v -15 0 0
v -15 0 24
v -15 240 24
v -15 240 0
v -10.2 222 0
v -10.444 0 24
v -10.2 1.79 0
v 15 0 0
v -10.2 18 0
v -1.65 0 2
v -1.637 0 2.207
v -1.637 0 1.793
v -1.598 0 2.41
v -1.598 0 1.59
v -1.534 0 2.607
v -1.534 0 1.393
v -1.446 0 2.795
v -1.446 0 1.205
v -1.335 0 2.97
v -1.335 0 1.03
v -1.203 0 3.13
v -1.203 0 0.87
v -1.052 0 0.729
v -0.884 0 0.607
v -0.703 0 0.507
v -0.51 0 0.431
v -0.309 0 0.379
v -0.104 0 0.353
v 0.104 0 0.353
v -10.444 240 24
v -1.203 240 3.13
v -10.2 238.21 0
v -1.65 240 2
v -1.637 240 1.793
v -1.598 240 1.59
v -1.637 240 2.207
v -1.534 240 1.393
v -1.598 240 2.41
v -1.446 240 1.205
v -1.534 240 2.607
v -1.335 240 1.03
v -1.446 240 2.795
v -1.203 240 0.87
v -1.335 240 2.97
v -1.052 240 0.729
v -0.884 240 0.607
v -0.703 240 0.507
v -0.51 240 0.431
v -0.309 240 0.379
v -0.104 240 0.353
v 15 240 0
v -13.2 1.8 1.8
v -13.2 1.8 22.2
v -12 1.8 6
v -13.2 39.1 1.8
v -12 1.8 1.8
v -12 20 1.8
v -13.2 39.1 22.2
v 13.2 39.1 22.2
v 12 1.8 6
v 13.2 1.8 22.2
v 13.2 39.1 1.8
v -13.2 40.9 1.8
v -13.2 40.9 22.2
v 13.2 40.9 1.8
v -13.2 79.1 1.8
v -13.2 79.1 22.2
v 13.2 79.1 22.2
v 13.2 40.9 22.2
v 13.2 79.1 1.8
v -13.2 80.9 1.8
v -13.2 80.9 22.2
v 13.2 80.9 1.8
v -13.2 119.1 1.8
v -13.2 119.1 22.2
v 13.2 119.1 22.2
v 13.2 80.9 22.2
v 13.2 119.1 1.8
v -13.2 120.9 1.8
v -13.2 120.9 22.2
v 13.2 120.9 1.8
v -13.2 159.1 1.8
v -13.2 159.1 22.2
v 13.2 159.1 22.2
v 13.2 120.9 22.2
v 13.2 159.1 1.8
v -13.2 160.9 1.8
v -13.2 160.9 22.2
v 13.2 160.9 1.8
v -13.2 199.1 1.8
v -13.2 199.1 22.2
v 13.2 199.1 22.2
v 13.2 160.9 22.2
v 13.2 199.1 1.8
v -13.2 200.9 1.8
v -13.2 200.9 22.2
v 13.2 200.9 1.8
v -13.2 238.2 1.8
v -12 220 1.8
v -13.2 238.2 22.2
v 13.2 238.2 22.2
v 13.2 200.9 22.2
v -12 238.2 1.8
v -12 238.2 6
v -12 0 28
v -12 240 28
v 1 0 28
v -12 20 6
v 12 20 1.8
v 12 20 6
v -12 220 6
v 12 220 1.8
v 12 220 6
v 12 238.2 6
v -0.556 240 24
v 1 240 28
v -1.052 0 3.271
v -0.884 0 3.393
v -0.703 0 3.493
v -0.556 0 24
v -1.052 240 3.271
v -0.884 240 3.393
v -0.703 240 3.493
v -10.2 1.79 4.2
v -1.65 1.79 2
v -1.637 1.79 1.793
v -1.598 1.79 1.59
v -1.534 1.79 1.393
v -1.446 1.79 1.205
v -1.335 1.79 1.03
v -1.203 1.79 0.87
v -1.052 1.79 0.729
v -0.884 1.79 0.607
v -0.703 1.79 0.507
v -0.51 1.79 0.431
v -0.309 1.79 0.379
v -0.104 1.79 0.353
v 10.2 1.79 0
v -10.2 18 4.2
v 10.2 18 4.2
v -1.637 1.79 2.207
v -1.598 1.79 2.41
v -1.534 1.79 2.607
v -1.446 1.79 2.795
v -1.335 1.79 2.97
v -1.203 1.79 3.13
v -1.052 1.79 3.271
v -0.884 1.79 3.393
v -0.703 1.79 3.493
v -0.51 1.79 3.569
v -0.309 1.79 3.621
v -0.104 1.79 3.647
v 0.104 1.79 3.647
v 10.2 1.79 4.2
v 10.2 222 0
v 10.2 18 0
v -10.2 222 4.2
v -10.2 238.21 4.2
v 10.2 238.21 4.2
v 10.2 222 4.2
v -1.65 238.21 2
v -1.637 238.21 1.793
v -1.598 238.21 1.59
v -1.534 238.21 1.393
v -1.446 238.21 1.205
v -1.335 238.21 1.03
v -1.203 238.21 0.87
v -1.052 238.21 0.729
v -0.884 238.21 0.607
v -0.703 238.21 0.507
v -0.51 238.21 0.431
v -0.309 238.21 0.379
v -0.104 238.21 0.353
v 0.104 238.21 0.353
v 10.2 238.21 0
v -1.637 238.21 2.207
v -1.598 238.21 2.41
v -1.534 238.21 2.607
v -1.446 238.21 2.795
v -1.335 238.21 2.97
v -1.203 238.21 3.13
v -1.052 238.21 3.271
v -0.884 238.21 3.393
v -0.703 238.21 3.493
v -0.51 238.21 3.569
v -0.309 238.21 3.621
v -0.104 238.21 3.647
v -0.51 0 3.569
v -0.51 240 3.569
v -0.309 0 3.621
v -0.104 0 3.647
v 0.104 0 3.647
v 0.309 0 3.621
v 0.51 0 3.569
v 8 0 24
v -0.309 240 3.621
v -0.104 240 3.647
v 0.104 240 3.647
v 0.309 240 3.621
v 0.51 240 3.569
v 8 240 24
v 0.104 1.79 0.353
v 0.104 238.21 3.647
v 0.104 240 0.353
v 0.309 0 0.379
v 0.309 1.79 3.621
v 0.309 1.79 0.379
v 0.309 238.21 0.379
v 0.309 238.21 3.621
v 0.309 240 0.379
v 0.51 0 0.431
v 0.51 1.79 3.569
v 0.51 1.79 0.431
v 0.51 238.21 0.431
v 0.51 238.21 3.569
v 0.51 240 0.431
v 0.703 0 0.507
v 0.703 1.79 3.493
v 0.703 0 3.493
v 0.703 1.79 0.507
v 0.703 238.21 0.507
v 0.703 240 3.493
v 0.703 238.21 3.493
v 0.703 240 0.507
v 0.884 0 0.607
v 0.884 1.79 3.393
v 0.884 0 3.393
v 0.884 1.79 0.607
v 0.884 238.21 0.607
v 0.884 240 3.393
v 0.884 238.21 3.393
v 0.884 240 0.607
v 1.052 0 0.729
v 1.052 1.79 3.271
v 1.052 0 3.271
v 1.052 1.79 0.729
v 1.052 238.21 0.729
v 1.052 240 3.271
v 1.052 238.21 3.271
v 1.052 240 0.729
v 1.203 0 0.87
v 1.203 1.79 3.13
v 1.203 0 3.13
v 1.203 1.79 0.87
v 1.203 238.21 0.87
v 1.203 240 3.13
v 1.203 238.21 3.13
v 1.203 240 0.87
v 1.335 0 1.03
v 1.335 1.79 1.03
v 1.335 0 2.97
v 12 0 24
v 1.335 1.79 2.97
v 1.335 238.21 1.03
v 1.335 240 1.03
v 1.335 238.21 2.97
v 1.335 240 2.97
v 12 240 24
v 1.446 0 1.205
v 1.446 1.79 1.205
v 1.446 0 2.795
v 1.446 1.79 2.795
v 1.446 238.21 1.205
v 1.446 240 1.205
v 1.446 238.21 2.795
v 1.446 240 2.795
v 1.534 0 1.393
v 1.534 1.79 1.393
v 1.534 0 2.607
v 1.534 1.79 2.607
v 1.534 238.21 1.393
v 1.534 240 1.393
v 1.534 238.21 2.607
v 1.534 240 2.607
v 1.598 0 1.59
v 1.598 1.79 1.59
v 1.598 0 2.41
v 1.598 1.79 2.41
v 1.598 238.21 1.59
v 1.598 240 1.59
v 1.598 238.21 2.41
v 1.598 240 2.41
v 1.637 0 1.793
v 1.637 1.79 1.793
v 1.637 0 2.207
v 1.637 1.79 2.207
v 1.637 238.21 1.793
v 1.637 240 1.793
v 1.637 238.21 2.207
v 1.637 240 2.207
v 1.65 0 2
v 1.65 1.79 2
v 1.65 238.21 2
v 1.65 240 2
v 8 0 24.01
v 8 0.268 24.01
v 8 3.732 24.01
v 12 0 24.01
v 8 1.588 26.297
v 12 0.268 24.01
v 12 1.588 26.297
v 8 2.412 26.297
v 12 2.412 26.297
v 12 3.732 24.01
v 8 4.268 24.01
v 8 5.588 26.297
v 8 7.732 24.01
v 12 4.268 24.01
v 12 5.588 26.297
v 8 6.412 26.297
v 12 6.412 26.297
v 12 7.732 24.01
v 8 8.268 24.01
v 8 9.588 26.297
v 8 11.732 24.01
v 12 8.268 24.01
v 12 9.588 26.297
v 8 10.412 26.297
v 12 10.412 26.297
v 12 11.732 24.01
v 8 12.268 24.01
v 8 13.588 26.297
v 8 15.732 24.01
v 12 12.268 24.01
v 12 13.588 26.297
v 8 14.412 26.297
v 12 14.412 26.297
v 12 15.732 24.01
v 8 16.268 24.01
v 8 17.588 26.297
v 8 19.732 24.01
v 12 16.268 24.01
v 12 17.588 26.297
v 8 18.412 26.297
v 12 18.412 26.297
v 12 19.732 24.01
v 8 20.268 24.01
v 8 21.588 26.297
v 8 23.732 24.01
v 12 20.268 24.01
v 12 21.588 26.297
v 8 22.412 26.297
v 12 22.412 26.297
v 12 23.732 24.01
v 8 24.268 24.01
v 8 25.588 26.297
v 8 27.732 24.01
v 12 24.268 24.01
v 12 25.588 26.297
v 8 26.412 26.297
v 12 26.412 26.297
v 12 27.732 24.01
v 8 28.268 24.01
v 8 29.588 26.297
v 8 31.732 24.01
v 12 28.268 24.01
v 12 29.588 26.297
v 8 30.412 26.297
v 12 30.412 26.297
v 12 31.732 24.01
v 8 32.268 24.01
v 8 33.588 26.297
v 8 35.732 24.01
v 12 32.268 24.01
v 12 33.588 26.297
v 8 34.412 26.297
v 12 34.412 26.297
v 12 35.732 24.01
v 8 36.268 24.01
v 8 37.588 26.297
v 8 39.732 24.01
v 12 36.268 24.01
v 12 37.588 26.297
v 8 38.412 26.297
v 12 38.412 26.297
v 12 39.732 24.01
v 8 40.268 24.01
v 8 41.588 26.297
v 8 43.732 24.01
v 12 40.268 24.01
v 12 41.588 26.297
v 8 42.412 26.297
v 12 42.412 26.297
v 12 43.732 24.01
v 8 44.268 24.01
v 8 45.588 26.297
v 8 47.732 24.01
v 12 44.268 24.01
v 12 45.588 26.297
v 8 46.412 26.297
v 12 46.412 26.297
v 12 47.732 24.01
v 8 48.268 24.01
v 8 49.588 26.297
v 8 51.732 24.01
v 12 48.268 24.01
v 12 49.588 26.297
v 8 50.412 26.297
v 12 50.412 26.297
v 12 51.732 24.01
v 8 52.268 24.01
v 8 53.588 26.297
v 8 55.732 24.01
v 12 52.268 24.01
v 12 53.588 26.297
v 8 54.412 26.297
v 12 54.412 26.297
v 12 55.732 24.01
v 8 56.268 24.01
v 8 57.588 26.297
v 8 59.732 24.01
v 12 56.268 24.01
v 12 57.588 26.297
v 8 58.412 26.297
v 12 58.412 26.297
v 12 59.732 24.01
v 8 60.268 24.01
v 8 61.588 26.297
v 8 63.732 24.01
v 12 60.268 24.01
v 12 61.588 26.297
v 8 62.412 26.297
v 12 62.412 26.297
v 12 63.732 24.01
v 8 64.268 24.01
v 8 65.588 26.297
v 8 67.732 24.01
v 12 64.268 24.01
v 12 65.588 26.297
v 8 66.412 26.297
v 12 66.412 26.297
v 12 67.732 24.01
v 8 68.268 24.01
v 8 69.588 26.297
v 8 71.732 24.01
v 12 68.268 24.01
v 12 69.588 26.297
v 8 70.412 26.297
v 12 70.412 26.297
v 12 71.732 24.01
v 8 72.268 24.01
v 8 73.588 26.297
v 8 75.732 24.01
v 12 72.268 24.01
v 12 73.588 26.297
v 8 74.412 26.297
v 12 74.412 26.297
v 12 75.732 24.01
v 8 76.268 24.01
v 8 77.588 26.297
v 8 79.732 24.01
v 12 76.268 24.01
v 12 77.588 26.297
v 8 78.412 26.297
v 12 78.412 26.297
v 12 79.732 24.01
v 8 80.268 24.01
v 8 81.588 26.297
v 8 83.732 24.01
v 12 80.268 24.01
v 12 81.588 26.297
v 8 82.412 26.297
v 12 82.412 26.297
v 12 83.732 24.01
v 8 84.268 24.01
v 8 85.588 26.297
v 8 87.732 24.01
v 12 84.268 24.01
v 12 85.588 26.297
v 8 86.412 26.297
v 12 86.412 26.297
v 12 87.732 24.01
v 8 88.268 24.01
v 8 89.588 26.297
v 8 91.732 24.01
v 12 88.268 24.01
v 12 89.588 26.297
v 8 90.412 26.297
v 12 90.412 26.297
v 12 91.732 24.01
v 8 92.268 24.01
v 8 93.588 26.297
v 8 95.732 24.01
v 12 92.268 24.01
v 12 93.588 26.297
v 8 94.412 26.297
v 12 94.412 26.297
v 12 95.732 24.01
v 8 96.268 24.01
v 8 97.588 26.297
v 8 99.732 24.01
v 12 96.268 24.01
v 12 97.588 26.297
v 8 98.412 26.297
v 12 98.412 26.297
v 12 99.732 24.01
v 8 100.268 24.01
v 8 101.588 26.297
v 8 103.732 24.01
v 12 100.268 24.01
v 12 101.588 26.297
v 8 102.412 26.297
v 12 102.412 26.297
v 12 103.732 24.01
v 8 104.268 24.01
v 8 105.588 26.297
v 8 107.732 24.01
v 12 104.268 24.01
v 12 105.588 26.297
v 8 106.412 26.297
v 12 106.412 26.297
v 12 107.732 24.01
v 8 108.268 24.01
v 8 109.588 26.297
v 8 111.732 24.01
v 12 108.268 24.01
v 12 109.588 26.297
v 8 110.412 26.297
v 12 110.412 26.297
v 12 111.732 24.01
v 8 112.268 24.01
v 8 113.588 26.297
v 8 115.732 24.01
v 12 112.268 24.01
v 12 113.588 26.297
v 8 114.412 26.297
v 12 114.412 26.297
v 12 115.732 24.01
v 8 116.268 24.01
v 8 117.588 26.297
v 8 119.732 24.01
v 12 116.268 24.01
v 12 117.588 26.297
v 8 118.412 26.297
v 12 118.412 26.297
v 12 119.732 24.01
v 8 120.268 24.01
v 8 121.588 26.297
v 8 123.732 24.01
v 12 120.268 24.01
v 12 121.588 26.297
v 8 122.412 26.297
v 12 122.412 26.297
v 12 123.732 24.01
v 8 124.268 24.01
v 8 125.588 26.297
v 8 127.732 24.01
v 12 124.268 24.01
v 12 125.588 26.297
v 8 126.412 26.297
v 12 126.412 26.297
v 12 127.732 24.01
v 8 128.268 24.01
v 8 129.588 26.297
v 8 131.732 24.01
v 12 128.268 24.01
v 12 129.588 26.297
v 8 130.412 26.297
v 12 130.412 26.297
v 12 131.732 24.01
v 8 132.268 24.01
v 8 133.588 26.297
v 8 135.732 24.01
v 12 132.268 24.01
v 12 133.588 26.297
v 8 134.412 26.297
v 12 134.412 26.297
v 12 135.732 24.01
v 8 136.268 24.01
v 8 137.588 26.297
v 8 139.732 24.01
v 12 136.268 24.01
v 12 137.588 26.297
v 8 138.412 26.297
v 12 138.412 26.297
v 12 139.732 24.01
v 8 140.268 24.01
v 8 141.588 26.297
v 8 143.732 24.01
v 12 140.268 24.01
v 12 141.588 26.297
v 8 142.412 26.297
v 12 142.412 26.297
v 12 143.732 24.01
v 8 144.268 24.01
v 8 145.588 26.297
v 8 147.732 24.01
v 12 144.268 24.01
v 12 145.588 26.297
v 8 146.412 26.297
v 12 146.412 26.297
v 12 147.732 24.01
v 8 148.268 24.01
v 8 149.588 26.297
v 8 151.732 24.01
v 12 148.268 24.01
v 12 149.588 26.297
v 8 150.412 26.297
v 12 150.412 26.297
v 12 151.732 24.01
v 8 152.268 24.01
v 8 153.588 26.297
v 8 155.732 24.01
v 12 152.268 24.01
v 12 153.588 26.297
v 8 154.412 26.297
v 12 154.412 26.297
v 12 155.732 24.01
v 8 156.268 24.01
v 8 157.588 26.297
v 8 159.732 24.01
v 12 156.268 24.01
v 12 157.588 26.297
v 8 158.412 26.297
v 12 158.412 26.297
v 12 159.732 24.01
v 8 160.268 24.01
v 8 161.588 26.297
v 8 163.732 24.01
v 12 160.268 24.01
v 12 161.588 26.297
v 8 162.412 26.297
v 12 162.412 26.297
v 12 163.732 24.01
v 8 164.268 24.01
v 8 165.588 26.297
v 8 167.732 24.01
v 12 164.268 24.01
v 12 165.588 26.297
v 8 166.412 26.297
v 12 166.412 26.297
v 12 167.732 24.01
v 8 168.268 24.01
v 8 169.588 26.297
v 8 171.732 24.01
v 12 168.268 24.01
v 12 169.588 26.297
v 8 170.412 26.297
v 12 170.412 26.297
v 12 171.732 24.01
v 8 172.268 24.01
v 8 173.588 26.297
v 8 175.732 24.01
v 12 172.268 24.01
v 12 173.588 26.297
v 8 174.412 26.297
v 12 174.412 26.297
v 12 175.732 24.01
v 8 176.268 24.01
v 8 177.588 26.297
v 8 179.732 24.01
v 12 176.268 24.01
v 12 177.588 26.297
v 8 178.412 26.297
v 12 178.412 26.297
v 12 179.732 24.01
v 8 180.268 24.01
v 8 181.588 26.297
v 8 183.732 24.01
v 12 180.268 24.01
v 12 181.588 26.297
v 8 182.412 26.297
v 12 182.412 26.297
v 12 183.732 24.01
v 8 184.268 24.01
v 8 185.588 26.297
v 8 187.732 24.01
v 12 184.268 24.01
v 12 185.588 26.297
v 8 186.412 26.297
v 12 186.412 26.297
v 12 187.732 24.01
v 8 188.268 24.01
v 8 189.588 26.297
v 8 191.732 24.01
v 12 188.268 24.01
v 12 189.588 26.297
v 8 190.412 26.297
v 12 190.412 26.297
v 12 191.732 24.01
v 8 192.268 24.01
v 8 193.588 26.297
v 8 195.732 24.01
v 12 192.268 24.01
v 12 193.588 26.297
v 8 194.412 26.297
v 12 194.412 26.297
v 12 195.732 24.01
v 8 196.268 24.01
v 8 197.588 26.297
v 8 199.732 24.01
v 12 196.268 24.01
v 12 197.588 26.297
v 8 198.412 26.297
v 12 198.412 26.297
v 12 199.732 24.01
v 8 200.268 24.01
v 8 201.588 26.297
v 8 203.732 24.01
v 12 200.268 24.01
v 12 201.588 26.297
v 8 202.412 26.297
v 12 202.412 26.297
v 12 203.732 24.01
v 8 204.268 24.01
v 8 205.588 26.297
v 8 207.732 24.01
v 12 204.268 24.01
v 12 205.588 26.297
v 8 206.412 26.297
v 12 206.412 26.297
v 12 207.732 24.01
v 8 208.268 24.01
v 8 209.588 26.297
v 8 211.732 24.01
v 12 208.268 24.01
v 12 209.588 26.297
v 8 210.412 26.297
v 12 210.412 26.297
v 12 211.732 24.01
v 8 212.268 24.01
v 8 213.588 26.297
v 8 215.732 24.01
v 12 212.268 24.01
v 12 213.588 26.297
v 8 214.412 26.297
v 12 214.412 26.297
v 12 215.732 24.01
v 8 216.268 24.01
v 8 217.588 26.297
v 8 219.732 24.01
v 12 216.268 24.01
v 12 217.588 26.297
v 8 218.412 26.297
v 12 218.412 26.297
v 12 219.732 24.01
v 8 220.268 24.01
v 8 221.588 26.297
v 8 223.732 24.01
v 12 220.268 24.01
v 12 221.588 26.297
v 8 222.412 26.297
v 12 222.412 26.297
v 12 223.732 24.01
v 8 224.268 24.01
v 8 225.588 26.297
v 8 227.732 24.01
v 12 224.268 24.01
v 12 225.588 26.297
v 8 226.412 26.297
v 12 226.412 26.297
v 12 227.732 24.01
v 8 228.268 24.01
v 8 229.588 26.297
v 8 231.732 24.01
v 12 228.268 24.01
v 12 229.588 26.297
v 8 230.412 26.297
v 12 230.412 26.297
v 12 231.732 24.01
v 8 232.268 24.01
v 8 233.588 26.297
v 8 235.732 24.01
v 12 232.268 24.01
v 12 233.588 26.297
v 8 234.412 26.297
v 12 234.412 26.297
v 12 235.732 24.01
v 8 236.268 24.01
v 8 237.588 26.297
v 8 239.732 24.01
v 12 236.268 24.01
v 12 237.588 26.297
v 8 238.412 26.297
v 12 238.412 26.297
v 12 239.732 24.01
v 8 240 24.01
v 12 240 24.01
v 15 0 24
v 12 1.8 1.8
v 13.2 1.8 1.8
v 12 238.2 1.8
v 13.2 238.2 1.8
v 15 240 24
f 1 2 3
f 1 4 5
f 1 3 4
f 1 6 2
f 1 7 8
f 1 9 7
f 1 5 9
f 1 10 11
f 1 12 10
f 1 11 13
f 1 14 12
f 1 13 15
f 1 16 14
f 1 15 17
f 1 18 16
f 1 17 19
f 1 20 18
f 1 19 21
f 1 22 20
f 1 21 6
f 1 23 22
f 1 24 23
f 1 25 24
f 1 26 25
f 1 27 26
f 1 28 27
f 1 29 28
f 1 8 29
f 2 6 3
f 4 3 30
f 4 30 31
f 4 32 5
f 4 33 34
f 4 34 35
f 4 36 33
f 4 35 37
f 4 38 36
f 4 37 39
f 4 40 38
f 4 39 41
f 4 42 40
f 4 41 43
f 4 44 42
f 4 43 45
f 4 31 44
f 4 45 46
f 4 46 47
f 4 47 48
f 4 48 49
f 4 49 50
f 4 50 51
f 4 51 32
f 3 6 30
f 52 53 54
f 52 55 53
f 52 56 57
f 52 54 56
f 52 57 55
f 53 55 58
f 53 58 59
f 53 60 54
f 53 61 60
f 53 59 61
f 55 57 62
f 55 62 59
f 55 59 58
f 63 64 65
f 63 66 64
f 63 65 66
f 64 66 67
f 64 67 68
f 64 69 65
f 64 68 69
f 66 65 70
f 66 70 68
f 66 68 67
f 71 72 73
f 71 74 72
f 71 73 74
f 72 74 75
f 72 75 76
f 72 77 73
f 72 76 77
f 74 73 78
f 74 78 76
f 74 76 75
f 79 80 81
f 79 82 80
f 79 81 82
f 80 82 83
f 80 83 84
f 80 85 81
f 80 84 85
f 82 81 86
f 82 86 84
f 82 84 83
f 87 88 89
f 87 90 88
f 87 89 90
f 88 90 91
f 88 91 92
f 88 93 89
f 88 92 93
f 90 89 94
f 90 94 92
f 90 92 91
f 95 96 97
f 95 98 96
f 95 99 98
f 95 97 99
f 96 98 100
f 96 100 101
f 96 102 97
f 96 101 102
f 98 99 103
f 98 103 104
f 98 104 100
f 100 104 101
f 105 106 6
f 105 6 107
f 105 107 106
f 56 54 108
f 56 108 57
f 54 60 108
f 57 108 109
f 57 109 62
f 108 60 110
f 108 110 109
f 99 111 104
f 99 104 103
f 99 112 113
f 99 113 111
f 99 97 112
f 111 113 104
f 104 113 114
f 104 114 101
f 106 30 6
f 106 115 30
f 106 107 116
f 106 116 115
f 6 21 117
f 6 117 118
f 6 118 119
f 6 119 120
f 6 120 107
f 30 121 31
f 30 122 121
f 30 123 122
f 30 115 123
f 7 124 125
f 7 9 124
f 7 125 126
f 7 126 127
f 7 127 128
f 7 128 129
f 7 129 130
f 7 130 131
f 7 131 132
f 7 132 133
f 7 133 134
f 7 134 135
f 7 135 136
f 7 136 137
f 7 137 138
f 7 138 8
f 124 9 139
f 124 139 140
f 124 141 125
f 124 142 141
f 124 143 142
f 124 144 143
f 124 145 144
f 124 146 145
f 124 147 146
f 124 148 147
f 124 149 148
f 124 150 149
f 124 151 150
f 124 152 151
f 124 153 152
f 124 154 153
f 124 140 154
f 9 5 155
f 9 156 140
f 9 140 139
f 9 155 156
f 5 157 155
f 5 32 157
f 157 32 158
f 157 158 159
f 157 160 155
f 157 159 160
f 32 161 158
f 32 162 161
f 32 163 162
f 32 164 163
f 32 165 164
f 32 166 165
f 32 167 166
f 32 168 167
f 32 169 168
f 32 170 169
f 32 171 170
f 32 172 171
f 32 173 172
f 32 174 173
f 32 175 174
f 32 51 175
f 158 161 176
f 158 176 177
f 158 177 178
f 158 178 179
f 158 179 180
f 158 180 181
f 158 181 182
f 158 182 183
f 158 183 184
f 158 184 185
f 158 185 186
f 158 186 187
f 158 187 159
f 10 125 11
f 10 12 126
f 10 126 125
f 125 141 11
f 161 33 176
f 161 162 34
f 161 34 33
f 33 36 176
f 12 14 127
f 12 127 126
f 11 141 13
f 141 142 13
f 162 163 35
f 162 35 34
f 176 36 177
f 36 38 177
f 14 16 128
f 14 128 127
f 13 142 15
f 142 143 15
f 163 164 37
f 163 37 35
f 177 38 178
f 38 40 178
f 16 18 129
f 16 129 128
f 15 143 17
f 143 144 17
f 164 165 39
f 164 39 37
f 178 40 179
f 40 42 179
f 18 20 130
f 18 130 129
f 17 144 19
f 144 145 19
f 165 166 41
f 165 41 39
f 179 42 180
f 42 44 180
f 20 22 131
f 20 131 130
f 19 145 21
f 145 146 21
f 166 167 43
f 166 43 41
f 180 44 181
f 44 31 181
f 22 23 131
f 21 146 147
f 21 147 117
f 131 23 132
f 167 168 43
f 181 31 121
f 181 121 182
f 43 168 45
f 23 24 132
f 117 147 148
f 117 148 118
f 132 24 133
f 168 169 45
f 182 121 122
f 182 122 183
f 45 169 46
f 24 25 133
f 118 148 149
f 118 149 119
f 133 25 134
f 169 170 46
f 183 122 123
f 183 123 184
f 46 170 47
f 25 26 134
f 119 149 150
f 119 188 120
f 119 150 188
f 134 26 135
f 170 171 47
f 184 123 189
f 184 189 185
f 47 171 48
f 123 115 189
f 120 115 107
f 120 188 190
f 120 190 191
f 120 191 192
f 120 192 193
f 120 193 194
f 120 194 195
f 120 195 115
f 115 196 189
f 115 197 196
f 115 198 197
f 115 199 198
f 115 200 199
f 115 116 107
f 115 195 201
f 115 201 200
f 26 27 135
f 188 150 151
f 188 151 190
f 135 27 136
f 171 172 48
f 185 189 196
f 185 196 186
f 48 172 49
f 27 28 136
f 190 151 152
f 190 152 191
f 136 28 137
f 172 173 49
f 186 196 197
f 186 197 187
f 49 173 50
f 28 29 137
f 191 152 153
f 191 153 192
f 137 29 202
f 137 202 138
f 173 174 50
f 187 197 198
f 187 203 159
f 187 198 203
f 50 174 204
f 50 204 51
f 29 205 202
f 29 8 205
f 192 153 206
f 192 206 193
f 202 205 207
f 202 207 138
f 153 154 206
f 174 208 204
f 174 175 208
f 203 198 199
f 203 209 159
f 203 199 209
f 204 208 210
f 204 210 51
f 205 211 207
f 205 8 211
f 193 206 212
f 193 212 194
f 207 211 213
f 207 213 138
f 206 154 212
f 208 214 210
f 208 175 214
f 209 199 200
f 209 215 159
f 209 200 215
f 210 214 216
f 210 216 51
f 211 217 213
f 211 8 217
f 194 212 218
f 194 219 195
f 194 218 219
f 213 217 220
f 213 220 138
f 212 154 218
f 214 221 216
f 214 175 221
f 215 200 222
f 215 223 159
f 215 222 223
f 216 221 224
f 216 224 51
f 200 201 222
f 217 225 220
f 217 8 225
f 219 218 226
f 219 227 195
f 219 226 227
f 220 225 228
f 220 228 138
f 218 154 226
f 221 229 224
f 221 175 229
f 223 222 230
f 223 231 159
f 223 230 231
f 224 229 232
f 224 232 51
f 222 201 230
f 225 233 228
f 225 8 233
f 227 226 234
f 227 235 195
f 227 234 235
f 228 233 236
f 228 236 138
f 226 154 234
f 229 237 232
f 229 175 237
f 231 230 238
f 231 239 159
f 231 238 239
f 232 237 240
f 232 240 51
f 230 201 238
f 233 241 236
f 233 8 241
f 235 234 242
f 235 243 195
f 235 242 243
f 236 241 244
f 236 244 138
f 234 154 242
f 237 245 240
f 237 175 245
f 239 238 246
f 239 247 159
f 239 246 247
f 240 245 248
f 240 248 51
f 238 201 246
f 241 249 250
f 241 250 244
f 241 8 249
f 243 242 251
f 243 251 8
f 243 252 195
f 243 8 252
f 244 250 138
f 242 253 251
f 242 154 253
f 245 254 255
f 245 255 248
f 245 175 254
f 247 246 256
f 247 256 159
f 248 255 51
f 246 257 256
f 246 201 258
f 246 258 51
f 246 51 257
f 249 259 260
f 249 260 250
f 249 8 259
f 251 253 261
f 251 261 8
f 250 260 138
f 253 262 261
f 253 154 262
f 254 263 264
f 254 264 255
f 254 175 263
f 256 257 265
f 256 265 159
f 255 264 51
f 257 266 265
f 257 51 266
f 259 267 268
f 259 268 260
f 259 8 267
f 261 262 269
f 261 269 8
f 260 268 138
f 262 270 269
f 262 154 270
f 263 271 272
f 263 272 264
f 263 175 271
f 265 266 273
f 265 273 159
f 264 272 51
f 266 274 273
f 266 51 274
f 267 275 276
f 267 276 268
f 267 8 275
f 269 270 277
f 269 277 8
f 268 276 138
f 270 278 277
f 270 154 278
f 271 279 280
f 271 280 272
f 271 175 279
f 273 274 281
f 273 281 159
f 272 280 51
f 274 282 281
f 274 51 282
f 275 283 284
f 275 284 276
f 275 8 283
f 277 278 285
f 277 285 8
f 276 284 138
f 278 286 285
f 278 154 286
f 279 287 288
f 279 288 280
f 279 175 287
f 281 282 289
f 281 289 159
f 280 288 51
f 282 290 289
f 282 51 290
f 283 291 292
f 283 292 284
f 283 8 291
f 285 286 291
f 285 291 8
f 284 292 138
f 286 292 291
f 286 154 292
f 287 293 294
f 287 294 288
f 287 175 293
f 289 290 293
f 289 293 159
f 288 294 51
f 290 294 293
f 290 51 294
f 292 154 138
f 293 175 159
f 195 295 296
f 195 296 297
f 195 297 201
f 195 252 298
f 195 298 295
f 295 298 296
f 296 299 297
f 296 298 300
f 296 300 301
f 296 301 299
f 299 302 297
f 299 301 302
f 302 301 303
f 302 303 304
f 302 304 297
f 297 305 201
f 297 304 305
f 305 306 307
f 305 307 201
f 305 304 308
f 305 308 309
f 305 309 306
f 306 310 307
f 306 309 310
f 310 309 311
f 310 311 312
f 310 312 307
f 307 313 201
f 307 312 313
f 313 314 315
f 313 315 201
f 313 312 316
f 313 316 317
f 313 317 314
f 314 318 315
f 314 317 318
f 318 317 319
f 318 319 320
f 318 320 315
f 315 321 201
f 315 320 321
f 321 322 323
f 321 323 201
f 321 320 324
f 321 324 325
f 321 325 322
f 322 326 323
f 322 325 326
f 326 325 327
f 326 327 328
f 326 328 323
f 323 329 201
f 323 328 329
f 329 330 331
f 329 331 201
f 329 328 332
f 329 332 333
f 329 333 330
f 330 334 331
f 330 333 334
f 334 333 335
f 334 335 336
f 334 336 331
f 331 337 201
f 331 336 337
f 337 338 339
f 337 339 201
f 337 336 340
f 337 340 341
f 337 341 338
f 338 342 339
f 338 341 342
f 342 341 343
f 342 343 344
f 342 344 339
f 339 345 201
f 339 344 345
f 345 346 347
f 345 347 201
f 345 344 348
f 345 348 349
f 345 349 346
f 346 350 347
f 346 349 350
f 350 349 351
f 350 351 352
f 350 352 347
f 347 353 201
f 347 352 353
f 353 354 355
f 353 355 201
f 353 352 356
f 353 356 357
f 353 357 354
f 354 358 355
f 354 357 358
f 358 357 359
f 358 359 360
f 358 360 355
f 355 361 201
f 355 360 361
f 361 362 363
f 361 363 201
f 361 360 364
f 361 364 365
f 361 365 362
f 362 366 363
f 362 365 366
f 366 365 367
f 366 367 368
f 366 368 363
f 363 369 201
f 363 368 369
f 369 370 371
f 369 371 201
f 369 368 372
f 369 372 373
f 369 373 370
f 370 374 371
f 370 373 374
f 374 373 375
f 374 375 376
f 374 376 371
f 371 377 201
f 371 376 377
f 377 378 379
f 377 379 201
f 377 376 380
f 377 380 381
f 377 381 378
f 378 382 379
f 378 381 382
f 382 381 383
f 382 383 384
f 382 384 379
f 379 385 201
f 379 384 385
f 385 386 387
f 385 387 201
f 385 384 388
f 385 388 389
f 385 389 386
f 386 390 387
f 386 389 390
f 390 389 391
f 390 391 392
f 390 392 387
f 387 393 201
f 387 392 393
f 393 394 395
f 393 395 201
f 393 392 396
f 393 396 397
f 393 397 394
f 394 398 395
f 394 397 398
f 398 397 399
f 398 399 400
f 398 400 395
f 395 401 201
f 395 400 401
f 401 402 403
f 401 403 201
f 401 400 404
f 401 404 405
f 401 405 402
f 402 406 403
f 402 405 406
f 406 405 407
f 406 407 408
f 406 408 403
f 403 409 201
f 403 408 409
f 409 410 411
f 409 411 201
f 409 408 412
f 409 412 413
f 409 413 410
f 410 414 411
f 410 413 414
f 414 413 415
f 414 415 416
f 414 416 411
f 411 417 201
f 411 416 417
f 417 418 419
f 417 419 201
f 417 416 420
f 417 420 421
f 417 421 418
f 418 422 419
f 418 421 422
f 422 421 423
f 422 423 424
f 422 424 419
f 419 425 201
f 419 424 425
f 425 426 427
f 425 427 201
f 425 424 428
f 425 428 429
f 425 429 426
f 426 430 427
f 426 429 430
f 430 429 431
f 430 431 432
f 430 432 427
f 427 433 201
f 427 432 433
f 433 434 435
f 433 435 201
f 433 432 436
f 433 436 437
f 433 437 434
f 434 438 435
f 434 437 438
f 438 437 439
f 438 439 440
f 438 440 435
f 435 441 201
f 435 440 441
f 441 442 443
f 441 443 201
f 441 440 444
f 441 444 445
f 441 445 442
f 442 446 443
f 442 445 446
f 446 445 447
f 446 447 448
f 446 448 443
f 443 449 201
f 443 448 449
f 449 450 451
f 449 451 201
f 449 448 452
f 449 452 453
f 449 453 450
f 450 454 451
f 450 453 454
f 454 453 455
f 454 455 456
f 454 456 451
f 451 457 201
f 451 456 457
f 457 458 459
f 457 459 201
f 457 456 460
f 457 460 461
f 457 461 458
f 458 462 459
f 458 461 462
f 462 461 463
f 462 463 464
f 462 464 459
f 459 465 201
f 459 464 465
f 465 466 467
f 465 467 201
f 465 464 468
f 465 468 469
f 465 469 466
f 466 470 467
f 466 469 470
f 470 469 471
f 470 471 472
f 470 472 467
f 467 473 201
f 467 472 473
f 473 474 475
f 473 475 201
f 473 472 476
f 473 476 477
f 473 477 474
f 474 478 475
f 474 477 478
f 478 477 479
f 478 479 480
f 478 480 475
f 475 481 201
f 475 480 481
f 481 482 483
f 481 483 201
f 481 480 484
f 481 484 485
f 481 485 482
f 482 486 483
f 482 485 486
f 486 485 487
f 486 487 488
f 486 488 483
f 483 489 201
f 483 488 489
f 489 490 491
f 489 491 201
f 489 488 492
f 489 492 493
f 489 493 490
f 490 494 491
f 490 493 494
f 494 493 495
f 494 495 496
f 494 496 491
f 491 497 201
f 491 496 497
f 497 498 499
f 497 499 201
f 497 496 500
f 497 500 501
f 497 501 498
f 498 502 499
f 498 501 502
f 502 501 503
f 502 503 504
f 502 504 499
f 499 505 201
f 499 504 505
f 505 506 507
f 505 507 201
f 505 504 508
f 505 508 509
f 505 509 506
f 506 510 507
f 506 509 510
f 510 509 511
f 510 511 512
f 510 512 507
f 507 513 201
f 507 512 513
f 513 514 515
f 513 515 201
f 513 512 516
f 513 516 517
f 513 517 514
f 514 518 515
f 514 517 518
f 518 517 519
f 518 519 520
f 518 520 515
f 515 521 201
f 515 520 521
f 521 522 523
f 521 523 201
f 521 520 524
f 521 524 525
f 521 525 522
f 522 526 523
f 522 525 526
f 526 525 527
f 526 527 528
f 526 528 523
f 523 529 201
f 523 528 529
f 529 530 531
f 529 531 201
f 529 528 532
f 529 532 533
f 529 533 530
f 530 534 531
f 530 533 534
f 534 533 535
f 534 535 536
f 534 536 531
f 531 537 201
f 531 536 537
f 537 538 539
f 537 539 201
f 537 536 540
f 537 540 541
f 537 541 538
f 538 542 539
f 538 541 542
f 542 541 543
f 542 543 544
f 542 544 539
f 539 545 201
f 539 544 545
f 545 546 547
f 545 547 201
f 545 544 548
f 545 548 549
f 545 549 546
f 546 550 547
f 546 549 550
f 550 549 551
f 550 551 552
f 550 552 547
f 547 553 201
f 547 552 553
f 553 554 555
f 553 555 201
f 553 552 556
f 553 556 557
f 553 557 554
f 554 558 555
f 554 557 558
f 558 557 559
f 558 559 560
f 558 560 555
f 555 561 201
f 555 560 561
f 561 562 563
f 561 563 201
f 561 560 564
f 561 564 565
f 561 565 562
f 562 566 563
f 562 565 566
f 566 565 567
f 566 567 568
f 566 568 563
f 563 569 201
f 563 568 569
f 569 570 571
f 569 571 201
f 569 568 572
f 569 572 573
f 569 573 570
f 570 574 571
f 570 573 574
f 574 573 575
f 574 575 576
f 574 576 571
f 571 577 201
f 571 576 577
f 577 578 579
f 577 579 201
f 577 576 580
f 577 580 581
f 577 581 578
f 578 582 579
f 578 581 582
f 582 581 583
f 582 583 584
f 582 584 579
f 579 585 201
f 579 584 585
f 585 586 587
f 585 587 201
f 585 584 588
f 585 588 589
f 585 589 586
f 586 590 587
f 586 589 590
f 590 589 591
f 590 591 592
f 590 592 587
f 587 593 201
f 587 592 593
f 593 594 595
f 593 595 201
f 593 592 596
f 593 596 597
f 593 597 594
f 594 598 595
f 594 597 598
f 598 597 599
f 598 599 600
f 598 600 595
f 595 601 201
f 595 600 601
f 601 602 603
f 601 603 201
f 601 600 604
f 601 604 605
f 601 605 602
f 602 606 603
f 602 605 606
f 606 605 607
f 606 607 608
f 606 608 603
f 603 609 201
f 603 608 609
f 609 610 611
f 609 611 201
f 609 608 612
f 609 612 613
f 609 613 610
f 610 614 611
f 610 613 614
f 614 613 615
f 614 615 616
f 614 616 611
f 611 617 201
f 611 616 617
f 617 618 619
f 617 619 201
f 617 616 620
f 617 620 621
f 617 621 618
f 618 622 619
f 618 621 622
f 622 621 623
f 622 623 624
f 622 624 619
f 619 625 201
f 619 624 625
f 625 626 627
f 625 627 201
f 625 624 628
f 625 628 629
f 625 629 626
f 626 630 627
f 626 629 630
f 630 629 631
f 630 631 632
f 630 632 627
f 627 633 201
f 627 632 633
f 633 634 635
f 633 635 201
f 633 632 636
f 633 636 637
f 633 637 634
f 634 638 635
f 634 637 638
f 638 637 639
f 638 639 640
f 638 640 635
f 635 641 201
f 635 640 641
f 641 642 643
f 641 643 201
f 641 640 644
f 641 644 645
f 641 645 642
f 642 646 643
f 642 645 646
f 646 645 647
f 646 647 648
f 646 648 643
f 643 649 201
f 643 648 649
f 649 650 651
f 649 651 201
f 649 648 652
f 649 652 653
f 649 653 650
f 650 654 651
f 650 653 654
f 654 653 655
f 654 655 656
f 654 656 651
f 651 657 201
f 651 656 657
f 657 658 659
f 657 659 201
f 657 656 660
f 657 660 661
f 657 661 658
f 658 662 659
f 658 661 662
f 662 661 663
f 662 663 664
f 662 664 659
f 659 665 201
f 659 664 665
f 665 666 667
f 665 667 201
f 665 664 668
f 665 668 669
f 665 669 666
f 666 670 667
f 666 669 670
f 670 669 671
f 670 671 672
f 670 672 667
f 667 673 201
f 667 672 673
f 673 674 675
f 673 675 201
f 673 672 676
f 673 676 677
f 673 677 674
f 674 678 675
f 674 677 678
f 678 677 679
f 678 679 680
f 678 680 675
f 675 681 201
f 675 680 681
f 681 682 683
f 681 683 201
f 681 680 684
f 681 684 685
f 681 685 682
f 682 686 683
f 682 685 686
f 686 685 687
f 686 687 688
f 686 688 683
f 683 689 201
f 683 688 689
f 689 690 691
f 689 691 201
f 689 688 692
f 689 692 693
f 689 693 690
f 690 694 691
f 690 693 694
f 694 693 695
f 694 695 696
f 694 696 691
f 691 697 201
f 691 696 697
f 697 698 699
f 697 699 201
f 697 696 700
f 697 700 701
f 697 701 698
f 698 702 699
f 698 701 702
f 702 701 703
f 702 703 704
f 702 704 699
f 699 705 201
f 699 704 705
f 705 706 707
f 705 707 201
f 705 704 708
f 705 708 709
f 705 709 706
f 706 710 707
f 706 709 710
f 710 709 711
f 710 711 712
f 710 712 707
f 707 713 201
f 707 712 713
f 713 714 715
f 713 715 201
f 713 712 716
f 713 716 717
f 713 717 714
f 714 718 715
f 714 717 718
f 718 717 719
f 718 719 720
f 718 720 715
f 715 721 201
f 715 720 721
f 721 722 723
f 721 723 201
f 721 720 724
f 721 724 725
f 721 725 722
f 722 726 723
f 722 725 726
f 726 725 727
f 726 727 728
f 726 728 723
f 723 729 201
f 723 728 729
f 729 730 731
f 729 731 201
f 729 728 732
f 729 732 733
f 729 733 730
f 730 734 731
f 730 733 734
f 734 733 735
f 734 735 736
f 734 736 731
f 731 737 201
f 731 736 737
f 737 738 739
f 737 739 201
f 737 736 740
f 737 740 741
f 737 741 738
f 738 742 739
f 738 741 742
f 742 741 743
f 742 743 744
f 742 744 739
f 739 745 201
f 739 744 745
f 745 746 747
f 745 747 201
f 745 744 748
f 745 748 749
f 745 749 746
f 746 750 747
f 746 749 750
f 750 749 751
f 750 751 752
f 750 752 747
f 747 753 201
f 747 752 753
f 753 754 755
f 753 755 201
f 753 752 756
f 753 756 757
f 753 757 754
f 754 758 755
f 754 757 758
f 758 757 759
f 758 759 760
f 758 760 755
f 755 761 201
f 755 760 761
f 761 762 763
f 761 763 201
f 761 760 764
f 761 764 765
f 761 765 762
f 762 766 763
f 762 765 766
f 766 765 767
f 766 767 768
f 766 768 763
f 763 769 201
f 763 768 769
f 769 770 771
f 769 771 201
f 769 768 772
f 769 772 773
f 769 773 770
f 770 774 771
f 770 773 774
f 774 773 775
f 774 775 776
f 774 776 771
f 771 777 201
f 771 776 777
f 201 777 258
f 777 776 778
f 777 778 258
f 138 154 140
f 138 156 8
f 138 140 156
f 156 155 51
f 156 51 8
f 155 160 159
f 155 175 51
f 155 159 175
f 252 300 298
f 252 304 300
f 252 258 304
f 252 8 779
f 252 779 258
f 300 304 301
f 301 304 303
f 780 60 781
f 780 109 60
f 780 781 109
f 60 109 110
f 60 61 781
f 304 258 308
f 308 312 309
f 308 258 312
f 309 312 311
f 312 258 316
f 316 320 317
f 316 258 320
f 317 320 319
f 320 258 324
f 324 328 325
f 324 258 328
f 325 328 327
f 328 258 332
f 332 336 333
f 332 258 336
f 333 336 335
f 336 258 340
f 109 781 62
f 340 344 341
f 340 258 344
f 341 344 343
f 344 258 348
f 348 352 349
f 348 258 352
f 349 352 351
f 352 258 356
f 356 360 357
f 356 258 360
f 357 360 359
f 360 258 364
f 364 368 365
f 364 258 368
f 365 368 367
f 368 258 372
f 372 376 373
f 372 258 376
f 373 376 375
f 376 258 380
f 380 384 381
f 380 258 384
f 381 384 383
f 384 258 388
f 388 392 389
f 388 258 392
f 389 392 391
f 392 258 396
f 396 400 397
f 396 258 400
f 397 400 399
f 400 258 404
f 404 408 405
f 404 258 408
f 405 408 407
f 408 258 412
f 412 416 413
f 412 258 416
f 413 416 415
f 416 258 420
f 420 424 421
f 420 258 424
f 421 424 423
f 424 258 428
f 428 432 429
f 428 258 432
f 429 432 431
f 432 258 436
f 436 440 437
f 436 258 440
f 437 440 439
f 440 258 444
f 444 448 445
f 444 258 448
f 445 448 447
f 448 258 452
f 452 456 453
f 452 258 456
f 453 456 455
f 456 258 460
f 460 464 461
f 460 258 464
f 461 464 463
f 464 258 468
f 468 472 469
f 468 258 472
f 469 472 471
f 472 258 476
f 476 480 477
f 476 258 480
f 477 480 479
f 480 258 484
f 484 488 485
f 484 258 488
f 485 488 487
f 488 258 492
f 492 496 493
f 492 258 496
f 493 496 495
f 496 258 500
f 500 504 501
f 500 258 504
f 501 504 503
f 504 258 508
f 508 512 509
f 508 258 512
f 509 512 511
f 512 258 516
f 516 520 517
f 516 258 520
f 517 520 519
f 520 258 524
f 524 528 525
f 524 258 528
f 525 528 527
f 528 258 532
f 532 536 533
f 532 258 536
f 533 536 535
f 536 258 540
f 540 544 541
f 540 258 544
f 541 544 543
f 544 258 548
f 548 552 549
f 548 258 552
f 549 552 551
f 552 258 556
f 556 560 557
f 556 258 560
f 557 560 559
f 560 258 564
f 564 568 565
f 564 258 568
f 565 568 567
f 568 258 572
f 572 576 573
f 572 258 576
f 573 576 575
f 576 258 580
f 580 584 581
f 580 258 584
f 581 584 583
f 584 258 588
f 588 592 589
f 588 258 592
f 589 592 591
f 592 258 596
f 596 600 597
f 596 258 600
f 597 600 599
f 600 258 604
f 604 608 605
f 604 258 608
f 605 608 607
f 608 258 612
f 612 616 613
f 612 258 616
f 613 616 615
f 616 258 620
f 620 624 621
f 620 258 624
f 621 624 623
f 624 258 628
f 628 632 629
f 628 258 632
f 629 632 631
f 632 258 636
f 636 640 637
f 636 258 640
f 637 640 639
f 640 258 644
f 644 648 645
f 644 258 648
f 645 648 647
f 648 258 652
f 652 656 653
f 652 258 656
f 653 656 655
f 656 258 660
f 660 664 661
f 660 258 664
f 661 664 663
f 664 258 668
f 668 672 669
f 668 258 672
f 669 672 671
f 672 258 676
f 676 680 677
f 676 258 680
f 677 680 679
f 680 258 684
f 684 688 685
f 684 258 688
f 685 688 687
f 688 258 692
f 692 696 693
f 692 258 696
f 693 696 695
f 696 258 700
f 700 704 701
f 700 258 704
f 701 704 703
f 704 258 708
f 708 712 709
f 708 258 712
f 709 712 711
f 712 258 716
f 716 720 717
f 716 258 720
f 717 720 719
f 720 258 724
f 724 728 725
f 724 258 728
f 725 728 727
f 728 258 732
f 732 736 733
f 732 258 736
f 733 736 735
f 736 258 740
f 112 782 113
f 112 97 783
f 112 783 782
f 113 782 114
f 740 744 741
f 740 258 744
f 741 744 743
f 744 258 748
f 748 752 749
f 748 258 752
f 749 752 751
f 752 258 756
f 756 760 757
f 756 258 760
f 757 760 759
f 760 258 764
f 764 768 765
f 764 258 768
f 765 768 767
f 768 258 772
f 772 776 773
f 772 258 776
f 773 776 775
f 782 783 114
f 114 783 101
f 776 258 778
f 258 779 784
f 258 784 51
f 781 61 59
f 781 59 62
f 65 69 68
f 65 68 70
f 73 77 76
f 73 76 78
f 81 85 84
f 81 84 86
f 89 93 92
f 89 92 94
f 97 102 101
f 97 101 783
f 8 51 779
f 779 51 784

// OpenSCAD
/*
  Viga/guia Y apoiada nas duas extremidades.

  Secao 30 x 24 mm, parede de 1,8 mm e diafragmas a cada 40 mm. A secao
  fechada resiste muito melhor a torcao que uma placa macica de massa parecida.
  Os encaixes inferiores posicionam a viga; um M3 em cada face de extremidade
  impede levantamento. Imprimir em PLA, como modelado, sem suporte.

  Nota STL: e uma unica peca material. Os seis vazios fechados geram sete
  cascas topologicas (uma externa + seis internas) em analisadores de malha.
*/

include <00_Parametros.scad>;

module y_box_shell(length=y_rail_length) {
  segment_count = floor(length/y_beam_rib_pitch);
  difference() {
    translate([-y_beam_w/2,0,0]) cube([y_beam_w,length,y_beam_h]);

    // Cavidades segmentadas deixam paredes externas e diafragmas integrais.
    for (k=[0:segment_count-1]) {
      cavity_y0 = k*y_beam_rib_pitch
                   + (k == 0 ? y_beam_wall : y_beam_rib_t/2);
      cavity_y1 = (k == segment_count-1)
                   ? length-y_beam_wall
                   : (k+1)*y_beam_rib_pitch-y_beam_rib_t/2;
      translate([-y_beam_w/2+y_beam_wall,cavity_y0,y_beam_wall])
        cube([y_beam_w-2*y_beam_wall,
              cavity_y1-cavity_y0,
              y_beam_h-2*y_beam_wall]);
    }
  }
}

module trilho_y(length=y_rail_length, include_rack=true) {
  front_socket_y = beam_key_inset;
  rear_socket_y = length-beam_key_inset-beam_key_d;
  socket_w = beam_key_w + 2*beam_socket_clearance;
  socket_d = beam_key_d + beam_socket_clearance;
  socket_h = beam_key_h + beam_socket_clearance;

  difference() {
    union() {
      y_box_shell(length);

      // Material apenas ao redor dos encaixes, sem preencher as pontas inteiras.
      translate([-12,0,0]) cube([24,beam_key_d+4,6]);
      translate([-12,length-beam_key_d-4,0]) cube([24,beam_key_d+4,6]);

      translate([y_dovetail_center_x,0,y_beam_h-0.5])
        dovetail_male_y(length);
      if (include_rack)
        translate([y_rack_center_x,0,y_beam_h]) rack_y(length);
    }

    // Bolsos cegos: a parede da extremidade permanece para apoiar a cabeca M3.
    translate([-socket_w/2,front_socket_y-EPS,-EPS])
      cube([socket_w,socket_d+EPS,socket_h+EPS]);
    translate([-socket_w/2,rear_socket_y-beam_socket_clearance,-EPS])
      cube([socket_w,socket_d+EPS,socket_h+EPS]);

    // Um parafuso axial por ponta. O parafuso rosca na chaveta do carrinho.
    translate([0,-EPS,beam_key_h/2])
      rotate([-90,0,0]) cylinder(r=beam_mount_hole_r,
                                 h=beam_key_inset+4.0);
    translate([0,length+EPS,beam_key_h/2])
      rotate([90,0,0]) cylinder(r=beam_mount_hole_r,
                                h=beam_key_inset+4.0);
  }
}

trilho_y();
